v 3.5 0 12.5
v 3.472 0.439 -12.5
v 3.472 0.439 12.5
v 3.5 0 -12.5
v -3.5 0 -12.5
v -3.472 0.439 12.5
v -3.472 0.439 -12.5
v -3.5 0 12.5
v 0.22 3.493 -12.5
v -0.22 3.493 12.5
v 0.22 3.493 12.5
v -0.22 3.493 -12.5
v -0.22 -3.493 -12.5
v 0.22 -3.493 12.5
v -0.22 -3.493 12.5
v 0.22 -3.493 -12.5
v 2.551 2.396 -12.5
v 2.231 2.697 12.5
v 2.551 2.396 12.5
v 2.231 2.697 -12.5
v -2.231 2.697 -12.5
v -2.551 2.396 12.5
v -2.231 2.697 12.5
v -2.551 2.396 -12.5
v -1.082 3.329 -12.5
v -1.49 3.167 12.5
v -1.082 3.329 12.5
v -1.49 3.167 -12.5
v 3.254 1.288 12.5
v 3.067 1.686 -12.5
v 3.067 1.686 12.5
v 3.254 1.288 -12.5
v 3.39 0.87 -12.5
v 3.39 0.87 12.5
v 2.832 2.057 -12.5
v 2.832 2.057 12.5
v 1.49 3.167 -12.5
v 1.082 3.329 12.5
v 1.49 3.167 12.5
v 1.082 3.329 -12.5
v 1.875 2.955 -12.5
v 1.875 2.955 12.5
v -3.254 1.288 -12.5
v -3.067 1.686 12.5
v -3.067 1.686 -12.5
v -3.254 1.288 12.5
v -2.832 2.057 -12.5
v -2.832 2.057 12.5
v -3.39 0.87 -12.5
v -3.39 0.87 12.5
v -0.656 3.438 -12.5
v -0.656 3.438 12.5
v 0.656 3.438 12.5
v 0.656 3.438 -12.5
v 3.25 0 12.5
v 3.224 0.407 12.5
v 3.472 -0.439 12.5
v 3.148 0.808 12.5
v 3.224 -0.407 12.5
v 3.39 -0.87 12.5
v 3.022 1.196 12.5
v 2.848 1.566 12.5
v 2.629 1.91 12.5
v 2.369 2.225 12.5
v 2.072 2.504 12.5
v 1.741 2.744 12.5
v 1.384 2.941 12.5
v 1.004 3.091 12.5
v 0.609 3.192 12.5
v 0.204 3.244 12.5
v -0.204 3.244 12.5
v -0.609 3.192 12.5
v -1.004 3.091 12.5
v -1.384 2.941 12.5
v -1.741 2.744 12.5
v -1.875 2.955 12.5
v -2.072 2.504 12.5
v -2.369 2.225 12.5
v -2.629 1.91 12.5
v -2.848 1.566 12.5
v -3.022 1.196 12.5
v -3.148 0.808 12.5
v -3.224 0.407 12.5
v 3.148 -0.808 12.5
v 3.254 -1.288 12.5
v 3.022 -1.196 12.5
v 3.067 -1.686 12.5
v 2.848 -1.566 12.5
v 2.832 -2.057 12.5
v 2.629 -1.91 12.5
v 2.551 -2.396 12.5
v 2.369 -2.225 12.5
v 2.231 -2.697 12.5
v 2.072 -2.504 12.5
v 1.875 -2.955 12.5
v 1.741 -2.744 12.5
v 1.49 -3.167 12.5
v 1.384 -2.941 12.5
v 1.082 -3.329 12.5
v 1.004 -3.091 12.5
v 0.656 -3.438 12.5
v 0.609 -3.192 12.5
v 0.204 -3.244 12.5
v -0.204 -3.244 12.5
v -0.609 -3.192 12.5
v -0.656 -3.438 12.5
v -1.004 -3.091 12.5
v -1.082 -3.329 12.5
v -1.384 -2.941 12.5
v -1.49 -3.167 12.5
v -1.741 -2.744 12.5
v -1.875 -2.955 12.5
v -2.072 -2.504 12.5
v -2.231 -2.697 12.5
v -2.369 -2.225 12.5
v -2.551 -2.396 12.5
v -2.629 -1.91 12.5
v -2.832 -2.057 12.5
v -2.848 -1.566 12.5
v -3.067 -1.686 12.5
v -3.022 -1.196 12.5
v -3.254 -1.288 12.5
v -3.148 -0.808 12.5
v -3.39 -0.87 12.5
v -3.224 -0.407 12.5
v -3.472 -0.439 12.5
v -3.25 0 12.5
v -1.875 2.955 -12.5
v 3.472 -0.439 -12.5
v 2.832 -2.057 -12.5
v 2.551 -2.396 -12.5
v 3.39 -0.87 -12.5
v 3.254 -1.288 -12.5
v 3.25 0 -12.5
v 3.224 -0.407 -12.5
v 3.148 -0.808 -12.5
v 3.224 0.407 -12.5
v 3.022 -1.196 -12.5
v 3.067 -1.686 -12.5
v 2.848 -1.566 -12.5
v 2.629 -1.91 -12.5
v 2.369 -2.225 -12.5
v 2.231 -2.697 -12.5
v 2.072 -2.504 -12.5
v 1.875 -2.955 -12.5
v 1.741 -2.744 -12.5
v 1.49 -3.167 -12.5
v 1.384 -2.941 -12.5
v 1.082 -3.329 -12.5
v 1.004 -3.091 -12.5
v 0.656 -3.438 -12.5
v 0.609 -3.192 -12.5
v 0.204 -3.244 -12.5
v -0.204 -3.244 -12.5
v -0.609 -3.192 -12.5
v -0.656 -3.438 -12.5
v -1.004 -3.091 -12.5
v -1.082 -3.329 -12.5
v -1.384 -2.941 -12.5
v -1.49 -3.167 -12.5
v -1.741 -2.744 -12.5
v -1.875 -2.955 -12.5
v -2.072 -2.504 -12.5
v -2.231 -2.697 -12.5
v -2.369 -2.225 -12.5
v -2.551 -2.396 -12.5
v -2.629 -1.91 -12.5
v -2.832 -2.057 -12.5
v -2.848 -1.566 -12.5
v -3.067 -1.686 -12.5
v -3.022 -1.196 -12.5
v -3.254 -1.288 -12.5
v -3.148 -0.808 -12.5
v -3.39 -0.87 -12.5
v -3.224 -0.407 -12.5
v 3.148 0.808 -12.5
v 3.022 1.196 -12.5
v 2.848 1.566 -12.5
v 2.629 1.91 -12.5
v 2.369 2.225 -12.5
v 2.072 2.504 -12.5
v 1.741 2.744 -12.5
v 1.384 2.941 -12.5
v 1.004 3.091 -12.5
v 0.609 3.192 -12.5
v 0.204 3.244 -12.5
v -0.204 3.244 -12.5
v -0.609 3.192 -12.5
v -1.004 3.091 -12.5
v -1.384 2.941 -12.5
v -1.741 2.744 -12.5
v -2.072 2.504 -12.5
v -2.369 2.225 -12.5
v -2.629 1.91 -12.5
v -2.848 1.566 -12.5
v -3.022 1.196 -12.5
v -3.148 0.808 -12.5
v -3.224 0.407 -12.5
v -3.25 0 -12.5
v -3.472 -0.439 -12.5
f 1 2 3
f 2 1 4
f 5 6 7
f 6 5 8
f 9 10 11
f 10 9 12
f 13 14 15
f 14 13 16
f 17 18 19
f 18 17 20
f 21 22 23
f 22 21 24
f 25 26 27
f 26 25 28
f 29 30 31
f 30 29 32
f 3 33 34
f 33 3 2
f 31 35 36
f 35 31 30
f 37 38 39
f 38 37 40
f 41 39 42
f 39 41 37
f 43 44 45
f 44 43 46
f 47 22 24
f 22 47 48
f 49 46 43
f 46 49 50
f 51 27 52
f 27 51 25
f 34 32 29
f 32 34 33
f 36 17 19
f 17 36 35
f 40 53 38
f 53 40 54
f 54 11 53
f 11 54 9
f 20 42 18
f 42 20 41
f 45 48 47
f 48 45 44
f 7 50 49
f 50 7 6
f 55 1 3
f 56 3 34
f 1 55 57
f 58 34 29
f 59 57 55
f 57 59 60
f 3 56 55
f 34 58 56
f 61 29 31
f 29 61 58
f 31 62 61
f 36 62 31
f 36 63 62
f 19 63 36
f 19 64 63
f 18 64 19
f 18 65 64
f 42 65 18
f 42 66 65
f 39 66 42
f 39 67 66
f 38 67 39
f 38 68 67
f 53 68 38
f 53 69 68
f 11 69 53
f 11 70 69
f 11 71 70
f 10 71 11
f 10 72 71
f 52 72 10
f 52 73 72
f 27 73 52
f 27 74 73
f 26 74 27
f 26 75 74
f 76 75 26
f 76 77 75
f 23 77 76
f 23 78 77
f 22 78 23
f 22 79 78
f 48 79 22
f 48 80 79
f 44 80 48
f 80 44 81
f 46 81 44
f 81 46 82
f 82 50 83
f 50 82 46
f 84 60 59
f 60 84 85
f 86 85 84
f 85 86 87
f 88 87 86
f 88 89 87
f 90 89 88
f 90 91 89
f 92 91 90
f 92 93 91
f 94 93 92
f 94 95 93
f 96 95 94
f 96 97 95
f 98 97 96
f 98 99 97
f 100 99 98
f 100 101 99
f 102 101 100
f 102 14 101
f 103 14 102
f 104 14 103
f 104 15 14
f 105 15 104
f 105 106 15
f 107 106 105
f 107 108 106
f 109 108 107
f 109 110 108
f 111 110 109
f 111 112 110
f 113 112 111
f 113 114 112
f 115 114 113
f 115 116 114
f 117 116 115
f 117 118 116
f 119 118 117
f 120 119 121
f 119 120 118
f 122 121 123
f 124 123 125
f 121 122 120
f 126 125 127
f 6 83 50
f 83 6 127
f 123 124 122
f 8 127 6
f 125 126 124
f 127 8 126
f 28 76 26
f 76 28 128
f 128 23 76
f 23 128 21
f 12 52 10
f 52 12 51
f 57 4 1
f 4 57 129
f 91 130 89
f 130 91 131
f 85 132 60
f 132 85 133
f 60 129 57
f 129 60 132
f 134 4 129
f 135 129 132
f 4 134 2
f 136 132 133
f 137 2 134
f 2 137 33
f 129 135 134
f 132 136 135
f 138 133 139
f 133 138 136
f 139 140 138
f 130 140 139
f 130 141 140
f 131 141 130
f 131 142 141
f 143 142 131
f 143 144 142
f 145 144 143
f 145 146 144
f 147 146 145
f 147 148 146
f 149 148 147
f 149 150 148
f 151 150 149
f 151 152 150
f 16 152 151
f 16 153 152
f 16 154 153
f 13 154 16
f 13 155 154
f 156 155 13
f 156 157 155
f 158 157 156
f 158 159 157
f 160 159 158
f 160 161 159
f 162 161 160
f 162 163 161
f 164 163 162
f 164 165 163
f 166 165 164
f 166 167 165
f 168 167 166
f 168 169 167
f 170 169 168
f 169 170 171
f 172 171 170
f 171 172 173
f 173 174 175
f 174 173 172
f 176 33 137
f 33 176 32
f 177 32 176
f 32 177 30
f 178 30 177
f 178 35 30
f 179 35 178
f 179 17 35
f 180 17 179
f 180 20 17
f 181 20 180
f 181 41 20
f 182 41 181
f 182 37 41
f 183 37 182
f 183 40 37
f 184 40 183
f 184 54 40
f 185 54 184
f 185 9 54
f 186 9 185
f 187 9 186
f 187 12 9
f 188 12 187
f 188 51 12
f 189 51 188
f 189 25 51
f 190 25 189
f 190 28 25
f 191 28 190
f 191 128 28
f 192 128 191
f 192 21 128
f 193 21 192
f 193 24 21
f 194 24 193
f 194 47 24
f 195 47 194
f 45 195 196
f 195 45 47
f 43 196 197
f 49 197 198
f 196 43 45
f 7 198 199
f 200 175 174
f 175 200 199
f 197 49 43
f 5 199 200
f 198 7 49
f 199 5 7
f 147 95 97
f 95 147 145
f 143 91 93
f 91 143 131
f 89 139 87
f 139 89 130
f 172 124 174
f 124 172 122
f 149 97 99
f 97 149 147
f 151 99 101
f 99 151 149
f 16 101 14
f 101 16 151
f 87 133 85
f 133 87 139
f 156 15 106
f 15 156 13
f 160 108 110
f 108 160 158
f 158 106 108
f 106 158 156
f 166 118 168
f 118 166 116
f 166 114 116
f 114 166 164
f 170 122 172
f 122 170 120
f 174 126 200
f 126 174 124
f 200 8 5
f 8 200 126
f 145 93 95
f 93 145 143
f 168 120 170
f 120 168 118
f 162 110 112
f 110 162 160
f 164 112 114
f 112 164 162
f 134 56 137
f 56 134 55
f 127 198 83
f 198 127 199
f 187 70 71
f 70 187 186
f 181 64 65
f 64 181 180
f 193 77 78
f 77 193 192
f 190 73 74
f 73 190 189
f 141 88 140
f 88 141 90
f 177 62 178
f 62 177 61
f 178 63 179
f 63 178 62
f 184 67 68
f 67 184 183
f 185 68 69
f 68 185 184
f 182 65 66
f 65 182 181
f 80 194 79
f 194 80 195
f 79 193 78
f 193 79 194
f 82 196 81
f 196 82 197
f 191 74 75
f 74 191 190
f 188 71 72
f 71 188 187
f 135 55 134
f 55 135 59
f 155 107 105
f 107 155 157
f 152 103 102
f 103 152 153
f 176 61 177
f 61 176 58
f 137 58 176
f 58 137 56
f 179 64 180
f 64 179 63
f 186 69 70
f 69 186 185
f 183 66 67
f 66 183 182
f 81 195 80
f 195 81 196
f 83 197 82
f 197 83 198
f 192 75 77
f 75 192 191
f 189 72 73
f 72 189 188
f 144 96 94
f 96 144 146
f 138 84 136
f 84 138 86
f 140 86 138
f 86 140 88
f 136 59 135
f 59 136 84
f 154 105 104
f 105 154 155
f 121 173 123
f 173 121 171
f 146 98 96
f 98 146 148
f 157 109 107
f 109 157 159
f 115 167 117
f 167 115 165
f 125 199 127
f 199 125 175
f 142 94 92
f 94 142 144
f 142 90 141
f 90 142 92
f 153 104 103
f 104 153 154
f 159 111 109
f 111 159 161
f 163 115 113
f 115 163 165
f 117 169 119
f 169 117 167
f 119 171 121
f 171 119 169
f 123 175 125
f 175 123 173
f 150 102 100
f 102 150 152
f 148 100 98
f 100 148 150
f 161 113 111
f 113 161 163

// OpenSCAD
$fn = 50;


difference() {
	union() {
		translate(v = [0, 0, -12.5000000000]) {
			cylinder(h = 25, r = 3.5000000000);
		}
	}
	union() {
		translate(v = [0, 0, -100.0000000000]) {
			cylinder(h = 200, r = 3.2500000000);
		}
	}
}
